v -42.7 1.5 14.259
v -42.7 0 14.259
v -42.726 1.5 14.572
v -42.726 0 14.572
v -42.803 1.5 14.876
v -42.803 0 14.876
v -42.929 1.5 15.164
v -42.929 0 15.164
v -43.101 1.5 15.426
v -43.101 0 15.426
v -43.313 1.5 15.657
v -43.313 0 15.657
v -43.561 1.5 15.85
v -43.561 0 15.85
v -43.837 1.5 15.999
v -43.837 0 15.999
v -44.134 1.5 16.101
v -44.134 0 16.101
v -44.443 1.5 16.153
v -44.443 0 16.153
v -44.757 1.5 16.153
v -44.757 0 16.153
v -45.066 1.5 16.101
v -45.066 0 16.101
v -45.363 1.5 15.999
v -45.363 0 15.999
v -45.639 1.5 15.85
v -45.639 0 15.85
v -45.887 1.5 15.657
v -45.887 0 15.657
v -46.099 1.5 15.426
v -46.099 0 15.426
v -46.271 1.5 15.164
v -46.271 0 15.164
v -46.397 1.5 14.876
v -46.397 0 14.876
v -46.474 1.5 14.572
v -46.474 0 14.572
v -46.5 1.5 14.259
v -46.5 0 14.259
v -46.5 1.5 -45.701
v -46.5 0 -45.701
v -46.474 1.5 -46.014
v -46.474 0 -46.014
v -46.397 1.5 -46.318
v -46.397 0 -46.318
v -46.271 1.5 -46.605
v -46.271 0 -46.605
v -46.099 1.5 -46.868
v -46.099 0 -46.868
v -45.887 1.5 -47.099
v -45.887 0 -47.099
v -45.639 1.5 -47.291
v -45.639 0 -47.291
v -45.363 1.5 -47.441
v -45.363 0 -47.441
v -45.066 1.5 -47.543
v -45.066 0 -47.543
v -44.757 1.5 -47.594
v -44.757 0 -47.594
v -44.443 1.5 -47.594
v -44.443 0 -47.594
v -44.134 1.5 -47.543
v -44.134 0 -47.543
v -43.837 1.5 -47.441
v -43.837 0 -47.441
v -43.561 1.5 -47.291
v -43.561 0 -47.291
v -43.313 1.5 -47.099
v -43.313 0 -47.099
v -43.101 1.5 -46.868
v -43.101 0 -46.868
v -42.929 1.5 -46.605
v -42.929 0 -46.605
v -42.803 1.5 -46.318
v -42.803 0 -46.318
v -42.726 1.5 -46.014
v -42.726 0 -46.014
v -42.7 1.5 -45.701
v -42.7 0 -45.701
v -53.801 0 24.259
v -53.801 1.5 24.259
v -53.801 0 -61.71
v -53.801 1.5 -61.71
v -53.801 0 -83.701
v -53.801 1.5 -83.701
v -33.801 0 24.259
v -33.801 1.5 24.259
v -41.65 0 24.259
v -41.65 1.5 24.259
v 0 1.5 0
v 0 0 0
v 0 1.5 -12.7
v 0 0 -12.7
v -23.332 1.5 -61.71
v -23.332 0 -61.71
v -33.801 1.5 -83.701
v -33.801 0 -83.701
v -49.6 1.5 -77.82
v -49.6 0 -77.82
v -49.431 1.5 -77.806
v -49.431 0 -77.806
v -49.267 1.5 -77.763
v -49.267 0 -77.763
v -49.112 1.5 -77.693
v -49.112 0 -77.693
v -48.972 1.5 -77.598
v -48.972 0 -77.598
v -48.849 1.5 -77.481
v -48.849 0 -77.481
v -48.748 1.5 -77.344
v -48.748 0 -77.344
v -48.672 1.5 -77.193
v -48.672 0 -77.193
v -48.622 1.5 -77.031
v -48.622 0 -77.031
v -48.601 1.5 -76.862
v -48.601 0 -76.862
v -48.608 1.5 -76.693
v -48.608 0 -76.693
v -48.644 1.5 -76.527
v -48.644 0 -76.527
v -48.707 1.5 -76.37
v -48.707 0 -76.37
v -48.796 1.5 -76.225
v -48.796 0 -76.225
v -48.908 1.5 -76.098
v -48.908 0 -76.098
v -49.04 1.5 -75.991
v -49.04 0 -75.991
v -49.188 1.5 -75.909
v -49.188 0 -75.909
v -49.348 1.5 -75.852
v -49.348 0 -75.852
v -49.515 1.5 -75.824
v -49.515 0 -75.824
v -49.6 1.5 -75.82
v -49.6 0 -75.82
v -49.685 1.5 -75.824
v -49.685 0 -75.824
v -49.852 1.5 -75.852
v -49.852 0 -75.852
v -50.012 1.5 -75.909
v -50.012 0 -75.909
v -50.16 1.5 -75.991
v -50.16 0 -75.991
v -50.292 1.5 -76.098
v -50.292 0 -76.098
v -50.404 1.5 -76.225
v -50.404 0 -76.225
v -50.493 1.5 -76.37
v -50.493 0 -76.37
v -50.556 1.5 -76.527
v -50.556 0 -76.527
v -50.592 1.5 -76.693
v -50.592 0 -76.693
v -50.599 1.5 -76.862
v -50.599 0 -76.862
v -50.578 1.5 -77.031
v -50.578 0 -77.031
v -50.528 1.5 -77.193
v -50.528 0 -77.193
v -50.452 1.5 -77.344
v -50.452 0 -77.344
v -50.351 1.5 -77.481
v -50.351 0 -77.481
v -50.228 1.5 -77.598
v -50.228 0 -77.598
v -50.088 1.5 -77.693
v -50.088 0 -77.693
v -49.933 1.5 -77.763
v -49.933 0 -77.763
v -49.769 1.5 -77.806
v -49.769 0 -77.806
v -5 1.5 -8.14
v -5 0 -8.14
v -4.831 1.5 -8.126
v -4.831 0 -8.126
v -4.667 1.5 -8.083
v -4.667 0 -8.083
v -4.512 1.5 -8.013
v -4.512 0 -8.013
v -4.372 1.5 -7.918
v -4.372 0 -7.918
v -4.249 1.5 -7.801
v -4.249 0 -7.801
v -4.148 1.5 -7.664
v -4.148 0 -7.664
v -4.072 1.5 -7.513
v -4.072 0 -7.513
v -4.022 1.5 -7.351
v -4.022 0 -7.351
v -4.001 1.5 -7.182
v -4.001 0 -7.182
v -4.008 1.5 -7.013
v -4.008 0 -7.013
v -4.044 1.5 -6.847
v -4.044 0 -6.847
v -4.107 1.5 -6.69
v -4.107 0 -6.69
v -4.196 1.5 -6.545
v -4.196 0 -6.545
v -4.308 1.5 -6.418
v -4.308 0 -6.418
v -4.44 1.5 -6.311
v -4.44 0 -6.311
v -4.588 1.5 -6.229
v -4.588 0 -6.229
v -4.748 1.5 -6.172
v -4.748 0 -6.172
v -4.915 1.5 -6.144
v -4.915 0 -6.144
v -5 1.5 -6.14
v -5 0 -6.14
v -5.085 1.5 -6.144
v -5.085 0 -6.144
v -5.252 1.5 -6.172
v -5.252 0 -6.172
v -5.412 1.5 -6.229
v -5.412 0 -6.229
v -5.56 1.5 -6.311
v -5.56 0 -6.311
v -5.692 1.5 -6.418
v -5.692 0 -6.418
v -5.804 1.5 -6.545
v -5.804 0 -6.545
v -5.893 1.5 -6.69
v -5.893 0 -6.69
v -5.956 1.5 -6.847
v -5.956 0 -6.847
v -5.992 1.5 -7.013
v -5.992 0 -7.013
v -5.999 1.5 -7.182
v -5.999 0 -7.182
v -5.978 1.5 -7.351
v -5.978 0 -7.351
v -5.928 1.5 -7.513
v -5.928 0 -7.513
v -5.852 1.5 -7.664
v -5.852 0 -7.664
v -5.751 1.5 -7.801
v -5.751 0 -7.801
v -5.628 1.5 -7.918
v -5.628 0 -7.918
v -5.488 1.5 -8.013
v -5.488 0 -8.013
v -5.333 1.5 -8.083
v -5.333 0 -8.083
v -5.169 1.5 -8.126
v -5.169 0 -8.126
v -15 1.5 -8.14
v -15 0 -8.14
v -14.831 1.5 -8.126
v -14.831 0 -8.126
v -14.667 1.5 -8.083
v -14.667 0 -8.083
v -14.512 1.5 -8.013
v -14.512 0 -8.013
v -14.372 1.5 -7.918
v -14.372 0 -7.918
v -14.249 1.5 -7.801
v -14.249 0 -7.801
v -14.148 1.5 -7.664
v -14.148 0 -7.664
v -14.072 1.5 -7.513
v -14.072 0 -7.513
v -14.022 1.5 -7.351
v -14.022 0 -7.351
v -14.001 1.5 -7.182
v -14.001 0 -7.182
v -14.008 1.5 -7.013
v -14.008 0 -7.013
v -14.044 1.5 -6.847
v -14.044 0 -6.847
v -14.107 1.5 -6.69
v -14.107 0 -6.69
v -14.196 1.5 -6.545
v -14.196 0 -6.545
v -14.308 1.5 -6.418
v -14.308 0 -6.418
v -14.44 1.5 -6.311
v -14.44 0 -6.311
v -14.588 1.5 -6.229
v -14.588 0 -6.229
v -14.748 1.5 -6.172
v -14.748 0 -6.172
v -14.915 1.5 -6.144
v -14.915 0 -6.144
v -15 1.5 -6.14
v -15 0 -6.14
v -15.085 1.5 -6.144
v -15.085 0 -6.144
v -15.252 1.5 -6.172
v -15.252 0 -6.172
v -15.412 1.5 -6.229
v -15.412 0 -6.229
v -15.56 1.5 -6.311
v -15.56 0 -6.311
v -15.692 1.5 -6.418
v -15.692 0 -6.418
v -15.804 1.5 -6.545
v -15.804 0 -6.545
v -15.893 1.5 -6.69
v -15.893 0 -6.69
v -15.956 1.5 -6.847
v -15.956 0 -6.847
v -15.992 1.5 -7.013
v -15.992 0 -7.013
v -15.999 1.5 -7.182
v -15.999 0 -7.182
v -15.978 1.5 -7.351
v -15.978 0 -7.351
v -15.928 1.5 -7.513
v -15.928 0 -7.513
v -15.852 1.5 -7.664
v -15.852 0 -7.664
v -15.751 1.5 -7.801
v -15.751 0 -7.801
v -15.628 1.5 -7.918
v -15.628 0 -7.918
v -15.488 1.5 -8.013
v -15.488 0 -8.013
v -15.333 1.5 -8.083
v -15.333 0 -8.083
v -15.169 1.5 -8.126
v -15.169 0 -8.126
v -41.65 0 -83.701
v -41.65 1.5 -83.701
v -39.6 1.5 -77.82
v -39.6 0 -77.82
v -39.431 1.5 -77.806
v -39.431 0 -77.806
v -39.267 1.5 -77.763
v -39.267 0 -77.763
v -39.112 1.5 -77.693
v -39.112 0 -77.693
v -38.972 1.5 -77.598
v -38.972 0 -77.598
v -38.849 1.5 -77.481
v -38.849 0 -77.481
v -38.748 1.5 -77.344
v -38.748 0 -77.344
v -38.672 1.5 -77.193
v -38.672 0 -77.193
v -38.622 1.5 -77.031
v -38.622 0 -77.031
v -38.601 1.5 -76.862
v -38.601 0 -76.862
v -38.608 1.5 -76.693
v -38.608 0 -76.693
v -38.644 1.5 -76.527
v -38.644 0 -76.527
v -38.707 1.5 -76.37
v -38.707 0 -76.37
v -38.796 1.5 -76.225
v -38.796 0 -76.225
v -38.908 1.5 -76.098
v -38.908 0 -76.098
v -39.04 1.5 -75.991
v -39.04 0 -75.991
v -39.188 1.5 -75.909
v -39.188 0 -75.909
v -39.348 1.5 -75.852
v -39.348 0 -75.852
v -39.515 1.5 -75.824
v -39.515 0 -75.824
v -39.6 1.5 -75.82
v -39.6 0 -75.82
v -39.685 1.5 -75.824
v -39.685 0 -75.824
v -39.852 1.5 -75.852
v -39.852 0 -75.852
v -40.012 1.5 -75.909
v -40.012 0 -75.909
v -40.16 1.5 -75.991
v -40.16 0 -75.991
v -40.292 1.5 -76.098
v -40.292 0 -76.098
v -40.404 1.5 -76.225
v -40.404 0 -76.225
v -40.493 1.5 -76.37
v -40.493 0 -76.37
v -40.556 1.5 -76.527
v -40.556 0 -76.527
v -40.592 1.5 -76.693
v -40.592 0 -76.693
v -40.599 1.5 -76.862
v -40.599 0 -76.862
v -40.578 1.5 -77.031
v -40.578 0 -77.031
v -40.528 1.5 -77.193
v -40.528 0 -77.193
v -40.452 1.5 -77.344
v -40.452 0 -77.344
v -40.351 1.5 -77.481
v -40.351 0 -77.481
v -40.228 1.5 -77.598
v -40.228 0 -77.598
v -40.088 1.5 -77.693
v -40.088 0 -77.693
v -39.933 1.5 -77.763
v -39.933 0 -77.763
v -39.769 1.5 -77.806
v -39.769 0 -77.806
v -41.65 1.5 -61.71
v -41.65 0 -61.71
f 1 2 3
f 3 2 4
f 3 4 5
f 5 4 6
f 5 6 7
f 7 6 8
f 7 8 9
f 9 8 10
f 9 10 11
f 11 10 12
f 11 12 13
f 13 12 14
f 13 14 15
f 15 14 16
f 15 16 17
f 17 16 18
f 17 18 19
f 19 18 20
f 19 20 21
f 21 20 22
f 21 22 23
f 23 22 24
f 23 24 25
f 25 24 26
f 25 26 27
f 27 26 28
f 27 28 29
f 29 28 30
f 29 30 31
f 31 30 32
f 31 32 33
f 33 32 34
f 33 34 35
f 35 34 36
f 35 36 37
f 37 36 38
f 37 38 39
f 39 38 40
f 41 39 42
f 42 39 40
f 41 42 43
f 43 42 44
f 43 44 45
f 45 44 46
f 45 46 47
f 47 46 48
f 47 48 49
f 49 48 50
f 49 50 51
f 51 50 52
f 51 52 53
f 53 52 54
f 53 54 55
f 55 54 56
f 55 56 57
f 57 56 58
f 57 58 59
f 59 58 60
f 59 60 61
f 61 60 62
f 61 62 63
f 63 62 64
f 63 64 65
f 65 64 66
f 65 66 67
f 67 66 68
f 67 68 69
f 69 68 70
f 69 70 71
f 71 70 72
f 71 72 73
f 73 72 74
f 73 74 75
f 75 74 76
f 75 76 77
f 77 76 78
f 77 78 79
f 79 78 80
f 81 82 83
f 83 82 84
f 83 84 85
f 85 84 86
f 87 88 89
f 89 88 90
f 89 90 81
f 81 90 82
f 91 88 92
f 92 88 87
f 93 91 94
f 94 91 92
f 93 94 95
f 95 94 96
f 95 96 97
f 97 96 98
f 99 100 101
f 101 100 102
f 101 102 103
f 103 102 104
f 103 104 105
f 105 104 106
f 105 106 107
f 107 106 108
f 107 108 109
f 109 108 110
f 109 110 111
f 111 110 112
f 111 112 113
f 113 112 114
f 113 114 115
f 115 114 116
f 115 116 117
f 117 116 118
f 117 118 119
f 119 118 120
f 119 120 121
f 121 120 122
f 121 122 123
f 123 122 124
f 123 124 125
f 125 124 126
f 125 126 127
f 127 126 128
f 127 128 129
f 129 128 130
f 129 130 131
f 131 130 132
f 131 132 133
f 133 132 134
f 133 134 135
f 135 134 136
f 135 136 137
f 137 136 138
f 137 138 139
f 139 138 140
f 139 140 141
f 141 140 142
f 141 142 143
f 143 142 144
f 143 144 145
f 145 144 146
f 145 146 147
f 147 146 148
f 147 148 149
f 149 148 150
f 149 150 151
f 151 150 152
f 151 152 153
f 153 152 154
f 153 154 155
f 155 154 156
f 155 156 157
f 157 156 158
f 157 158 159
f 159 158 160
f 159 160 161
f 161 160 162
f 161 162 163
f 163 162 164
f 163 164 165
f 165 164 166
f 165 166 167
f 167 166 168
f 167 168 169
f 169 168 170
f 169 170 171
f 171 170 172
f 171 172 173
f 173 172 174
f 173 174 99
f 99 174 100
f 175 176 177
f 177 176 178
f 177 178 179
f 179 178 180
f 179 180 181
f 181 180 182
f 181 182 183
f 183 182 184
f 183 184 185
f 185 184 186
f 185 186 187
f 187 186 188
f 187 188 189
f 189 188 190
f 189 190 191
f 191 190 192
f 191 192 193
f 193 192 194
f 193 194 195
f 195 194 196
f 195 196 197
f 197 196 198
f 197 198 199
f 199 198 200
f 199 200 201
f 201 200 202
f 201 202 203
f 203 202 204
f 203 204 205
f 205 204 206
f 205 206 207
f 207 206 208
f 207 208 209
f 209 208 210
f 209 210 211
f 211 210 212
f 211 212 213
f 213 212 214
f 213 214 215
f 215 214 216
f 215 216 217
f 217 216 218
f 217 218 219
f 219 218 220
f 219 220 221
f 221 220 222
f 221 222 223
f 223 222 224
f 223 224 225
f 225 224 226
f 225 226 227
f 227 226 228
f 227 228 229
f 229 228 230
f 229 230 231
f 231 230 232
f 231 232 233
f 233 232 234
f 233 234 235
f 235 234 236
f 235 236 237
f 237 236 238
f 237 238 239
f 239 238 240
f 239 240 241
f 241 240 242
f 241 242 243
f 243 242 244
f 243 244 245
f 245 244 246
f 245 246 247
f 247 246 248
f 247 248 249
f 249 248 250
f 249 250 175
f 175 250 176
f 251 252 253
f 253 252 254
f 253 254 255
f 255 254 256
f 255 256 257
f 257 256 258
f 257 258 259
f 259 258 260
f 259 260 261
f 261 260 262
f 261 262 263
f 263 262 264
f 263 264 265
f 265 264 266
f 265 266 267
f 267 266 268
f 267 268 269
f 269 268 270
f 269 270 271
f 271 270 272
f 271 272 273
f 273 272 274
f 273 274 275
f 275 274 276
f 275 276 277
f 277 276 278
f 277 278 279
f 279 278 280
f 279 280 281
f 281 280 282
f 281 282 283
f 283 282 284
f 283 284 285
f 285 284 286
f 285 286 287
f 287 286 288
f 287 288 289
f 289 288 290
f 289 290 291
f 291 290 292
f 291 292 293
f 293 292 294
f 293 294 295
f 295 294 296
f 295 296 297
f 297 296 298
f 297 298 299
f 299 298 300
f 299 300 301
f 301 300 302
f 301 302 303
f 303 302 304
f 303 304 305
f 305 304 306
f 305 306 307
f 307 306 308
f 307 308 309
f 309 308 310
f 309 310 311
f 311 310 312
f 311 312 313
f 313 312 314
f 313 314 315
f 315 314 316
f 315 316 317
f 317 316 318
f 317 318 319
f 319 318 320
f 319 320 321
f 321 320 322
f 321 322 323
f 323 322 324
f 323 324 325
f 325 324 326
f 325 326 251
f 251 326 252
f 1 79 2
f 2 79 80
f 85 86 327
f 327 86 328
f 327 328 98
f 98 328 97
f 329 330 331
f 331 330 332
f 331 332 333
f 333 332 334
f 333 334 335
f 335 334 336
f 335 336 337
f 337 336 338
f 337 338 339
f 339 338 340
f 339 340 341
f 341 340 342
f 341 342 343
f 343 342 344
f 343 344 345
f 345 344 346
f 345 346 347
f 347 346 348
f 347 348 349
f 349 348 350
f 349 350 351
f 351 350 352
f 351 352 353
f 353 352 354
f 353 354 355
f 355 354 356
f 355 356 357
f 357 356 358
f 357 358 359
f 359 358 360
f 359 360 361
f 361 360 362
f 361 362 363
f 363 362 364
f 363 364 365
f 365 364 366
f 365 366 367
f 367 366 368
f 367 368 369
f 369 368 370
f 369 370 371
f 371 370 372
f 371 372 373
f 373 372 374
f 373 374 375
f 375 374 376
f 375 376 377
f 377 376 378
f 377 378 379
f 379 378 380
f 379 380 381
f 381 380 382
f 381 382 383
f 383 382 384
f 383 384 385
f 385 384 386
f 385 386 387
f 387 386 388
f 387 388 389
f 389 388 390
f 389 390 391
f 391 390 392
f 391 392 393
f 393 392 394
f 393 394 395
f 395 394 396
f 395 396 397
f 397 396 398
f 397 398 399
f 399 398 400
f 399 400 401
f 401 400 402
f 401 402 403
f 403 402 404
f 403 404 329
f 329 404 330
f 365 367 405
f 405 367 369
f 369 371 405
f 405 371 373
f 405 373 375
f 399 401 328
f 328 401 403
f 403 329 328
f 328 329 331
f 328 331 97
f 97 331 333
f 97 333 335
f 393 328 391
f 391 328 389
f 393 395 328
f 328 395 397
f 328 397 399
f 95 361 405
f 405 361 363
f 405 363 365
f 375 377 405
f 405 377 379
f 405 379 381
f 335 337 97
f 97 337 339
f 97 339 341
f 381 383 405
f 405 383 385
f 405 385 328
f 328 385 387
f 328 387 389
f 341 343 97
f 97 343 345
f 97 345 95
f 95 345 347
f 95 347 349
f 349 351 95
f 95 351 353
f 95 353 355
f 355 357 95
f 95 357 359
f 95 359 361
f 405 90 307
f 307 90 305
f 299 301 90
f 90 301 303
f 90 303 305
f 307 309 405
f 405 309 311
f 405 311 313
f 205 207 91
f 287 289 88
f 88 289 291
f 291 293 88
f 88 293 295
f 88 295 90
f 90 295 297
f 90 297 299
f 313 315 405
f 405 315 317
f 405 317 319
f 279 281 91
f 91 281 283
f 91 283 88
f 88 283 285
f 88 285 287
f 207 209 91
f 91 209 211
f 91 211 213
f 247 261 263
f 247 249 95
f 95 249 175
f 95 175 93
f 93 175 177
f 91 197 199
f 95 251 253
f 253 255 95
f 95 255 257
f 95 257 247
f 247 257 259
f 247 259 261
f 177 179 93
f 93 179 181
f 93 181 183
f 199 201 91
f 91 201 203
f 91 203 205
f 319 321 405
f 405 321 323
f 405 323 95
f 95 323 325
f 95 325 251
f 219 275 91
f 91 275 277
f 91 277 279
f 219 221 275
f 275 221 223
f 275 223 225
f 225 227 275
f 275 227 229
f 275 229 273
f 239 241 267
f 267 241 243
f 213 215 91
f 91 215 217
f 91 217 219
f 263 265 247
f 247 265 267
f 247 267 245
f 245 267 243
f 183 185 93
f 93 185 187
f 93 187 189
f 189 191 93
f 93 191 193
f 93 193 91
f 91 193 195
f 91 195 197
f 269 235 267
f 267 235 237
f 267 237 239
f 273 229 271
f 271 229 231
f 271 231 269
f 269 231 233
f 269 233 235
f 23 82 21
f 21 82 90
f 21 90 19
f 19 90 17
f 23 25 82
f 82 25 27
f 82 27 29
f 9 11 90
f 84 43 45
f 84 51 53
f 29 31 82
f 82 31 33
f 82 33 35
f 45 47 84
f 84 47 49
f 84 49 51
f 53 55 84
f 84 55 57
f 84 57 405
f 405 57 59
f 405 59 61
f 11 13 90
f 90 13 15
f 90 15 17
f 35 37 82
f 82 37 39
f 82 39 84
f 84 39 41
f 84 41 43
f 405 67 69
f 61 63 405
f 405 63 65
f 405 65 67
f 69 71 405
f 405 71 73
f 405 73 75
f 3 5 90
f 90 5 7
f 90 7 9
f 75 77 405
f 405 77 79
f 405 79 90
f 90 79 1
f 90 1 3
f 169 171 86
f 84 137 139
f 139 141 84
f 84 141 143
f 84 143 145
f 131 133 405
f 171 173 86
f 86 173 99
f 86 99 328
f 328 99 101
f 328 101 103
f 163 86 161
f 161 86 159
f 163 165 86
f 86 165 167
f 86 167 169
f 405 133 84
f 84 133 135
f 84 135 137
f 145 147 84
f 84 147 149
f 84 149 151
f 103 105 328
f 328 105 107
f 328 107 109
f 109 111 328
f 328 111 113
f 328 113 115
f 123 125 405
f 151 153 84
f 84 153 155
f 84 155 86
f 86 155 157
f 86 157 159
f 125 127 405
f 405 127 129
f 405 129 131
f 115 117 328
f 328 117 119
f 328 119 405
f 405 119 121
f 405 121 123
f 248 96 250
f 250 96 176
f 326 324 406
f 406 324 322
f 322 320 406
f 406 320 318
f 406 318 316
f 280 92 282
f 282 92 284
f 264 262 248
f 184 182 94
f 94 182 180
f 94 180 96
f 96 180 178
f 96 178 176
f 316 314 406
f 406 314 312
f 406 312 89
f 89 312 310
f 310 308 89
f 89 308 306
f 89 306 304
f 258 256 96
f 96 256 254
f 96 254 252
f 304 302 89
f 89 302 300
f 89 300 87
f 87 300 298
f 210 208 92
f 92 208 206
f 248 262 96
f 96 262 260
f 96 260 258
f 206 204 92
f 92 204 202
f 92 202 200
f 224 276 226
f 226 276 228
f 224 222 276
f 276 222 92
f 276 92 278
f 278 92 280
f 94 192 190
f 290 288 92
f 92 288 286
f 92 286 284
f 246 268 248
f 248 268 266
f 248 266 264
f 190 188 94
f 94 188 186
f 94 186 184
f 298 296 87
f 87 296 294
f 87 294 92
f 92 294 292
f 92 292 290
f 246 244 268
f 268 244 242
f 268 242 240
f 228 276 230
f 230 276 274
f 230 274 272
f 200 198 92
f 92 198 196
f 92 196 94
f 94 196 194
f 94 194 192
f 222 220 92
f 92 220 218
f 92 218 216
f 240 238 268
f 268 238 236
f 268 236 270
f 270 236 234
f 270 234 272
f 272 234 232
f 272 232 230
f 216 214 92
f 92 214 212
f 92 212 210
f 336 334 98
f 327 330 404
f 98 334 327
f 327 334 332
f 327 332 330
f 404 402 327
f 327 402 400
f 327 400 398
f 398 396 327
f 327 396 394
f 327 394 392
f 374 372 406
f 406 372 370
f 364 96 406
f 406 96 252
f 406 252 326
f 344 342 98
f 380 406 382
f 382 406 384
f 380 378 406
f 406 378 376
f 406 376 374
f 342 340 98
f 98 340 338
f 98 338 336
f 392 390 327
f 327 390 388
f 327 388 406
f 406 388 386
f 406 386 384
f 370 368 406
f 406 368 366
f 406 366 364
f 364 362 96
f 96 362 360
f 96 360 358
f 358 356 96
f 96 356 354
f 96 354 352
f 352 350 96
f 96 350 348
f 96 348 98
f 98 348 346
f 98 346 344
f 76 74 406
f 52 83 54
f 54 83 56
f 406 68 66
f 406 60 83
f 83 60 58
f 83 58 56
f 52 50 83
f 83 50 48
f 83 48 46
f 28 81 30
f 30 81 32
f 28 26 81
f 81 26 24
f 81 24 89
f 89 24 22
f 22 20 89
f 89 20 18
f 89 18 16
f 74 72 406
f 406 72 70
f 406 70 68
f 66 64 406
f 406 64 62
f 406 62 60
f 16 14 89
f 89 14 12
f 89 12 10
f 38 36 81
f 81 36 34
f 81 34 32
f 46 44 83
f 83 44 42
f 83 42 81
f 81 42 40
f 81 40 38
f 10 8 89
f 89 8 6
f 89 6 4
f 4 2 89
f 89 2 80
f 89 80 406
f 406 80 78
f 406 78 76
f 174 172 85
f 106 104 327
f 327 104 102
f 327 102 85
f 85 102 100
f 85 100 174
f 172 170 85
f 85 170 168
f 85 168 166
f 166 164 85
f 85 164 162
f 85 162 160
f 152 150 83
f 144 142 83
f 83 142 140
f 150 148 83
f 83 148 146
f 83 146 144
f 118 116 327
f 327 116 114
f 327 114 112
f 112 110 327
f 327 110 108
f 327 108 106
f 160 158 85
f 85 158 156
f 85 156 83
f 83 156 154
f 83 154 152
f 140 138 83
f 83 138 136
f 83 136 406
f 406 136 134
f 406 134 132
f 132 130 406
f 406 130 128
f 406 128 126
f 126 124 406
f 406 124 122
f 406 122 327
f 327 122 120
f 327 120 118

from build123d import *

# Parameters (mm, degrees)
SKETCH1_R           = 1
BOSS_EXTRUDE1_DEPTH = 1.5


with BuildPart() as part:
    # Sketch1 → Boss-Extrude1 (new body)
    with BuildSketch(Plane(origin=(0, 0, 0), x_dir=(1, 0, 0), z_dir=(0, 1, 0))):
        Polygon((-33.800555393, 83.700849363), (0, 12.7), (0, 0), (-33.800555393, -24.25948244), (-53.800555393, -24.25948244), (-53.800555393, 83.700849363), align=None)
        with Locations(Location((-39.6, 76.82, 0), (0, 0, 270))):
            Circle(SKETCH1_R, mode=Mode.SUBTRACT)
        with Locations(Location((-49.6, 76.82, 0), (0, 0, 270))):
            Circle(SKETCH1_R, mode=Mode.SUBTRACT)
        with Locations(Location((-5, 7.14, 0), (0, 0, 270))):
            Circle(SKETCH1_R, mode=Mode.SUBTRACT)
        with Locations(Location((-15, 7.14, 0), (0, 0, 270))):
            Circle(SKETCH1_R, mode=Mode.SUBTRACT)
        with BuildLine():
            Line((-42.7, -14.25948244), (-42.7, 45.700849363))
            ThreePointArc((-42.7, 45.700849363), (-44.6, 47.600849363), (-46.5, 45.700849363))
            Line((-46.5, 45.700849363), (-46.5, -14.25948244))
            ThreePointArc((-46.5, -14.25948244), (-44.6, -16.15948244), (-42.7, -14.25948244))
        make_face(mode=Mode.SUBTRACT)
    extrude(amount=BOSS_EXTRUDE1_DEPTH)


solid = part.part
